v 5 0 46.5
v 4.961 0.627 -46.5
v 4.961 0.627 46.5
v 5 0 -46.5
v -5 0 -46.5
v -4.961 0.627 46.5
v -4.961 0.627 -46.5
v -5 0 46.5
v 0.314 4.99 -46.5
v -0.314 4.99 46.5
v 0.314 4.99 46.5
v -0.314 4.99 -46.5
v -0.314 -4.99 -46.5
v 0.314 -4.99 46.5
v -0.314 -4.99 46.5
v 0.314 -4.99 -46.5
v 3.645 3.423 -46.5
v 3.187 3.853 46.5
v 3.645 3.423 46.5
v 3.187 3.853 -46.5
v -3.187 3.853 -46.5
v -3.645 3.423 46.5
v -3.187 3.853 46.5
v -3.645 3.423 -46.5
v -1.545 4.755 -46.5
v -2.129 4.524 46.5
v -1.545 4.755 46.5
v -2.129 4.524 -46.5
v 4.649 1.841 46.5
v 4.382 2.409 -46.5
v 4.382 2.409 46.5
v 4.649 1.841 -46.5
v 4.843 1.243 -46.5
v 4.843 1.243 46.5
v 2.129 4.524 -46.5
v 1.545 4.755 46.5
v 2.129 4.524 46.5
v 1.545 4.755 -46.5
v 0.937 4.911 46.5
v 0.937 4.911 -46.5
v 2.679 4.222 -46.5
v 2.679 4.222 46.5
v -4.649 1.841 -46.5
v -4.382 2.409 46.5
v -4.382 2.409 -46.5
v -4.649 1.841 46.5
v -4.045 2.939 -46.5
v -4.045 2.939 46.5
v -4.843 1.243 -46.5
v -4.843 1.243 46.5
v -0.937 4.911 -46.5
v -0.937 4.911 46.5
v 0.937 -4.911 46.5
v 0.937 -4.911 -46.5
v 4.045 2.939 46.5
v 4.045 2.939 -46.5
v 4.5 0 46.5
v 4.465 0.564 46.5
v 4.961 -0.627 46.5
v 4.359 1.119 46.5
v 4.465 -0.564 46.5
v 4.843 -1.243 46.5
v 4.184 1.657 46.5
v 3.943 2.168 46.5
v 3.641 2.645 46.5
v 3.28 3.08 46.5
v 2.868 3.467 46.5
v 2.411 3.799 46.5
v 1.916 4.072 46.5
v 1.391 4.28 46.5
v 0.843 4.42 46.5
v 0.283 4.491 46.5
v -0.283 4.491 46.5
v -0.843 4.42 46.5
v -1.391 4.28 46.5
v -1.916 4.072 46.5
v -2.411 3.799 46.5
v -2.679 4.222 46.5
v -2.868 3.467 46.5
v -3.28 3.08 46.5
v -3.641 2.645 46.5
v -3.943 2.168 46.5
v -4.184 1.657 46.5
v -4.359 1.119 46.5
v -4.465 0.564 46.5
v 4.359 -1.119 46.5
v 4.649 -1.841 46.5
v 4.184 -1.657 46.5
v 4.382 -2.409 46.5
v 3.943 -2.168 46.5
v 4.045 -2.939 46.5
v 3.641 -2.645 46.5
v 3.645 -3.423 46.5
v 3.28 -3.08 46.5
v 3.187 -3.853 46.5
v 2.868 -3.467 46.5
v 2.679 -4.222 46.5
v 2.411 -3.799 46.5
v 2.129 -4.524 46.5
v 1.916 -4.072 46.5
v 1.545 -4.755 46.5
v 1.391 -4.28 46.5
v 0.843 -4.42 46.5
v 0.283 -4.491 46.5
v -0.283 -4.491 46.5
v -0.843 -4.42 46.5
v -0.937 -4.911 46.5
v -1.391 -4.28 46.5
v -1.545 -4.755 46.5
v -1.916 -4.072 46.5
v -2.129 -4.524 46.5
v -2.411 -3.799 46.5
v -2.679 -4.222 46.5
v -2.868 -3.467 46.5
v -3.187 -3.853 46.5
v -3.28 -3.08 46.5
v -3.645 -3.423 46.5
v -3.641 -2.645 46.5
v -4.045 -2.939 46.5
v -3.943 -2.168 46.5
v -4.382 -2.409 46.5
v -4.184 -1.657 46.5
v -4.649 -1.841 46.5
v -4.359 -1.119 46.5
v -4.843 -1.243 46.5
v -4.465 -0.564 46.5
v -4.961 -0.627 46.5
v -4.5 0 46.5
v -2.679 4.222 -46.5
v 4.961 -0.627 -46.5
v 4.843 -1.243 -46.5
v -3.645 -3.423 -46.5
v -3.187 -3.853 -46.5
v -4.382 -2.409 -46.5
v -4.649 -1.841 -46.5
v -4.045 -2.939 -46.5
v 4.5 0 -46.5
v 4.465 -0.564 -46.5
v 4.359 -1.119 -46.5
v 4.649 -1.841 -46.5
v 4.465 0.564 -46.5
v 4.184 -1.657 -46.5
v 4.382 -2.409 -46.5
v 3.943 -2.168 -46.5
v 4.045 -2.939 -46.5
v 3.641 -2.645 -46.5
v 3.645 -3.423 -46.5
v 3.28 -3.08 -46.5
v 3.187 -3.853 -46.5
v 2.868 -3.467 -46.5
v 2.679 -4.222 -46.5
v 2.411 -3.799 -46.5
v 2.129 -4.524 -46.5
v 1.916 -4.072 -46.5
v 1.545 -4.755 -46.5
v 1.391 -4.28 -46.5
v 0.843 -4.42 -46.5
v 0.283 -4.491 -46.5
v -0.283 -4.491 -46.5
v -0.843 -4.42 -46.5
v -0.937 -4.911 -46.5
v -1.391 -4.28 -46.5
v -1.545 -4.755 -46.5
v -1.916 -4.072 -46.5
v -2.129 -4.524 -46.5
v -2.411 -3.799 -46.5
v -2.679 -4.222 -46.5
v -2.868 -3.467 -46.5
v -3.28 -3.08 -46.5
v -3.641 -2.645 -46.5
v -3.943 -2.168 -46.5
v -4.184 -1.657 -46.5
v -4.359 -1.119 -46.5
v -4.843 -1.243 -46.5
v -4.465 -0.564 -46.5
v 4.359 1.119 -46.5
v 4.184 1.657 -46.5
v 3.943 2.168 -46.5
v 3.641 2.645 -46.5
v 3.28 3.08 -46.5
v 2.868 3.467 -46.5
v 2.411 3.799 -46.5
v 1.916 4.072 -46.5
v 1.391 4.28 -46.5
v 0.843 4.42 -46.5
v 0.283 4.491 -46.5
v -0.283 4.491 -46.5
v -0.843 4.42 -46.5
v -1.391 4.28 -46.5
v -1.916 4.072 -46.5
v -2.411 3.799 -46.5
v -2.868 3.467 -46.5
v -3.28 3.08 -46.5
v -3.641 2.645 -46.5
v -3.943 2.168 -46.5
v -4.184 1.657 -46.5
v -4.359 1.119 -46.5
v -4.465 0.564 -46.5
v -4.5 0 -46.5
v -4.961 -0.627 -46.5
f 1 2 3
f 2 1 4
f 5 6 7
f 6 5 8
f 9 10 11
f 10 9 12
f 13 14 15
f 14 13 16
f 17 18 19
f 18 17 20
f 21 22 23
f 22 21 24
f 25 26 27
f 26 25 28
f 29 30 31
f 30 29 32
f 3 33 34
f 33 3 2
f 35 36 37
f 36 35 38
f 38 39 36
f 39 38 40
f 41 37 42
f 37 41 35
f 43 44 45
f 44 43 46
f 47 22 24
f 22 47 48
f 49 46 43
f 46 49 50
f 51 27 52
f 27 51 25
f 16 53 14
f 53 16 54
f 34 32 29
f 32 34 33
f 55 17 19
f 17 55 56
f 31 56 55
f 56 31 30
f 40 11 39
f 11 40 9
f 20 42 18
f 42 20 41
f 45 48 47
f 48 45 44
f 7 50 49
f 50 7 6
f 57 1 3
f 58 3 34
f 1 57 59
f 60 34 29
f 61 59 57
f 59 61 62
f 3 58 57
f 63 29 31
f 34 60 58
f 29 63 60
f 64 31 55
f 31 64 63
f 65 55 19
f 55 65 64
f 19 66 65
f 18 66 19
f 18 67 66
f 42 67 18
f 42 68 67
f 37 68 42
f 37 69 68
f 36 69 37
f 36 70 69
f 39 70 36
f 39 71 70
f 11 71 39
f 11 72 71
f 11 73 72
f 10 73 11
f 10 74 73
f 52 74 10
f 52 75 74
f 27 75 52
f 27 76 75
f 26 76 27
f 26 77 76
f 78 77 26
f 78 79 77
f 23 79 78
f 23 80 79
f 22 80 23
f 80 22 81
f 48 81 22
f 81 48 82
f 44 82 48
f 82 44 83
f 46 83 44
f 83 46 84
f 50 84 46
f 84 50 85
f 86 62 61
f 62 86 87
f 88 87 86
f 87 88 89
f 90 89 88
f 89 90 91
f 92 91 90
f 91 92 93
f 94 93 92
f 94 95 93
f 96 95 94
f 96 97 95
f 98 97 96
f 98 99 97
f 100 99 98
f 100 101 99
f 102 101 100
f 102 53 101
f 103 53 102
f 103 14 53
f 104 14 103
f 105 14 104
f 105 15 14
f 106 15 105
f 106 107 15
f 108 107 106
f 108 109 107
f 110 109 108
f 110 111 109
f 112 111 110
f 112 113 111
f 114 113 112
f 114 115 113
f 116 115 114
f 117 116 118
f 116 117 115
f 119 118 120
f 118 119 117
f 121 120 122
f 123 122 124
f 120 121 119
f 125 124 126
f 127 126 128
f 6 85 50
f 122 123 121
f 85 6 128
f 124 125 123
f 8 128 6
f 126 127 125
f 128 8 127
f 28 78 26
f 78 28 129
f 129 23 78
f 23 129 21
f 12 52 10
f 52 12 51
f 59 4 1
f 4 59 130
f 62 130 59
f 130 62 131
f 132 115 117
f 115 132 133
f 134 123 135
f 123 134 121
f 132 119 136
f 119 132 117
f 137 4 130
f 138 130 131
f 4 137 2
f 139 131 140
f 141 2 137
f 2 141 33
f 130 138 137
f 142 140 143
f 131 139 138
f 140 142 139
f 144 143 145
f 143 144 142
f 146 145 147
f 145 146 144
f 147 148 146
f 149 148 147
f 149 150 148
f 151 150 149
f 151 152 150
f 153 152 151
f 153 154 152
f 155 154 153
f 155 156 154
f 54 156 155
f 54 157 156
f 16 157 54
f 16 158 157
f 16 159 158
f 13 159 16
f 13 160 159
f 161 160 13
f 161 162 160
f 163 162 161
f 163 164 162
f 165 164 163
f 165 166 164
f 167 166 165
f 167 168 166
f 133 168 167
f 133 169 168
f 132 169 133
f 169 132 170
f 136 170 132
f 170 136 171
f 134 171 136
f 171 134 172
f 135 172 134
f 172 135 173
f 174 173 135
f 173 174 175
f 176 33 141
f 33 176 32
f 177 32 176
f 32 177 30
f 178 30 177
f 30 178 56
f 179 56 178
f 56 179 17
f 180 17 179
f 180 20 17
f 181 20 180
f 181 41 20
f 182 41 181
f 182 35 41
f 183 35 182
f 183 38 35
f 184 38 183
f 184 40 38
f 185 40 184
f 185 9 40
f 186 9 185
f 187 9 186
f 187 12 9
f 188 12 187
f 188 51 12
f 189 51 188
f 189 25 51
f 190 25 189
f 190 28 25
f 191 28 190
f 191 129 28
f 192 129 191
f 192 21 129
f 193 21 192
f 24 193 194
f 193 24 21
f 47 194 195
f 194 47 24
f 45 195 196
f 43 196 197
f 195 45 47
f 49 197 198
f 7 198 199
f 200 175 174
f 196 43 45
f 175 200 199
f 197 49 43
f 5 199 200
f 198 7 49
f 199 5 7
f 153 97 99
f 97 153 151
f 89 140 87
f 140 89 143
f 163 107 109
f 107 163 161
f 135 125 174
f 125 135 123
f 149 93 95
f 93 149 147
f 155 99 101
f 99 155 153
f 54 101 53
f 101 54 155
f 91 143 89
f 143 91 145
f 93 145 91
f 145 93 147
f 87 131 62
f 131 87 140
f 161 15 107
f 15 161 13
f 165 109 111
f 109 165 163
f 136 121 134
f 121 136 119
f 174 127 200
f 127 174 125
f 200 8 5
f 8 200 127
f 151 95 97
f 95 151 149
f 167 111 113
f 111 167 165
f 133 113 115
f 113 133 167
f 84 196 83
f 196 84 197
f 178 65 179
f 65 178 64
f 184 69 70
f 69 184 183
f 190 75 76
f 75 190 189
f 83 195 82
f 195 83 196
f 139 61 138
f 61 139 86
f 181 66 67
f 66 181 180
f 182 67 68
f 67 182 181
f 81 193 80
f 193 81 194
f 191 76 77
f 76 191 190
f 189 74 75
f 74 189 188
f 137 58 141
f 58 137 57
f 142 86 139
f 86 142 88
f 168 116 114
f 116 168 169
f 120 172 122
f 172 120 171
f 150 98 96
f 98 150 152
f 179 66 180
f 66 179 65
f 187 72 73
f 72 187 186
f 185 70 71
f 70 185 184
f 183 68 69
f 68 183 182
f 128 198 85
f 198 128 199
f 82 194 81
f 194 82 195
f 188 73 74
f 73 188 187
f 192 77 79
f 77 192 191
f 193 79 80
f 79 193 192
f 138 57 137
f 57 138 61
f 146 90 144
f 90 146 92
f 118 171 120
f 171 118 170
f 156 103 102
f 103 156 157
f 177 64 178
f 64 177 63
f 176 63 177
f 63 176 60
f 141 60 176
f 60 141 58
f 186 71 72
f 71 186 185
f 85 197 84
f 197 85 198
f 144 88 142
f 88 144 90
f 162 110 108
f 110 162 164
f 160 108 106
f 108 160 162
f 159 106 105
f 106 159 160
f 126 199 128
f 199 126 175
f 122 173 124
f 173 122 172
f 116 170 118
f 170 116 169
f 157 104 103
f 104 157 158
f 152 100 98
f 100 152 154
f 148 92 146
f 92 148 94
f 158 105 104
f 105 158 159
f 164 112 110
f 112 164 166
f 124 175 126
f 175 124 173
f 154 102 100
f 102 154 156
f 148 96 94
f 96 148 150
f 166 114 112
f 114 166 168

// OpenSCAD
$fn = 50;


difference() {
	union() {
		translate(v = [0, 0, -46.5000000000]) {
			cylinder(h = 93, r = 5.0000000000);
		}
	}
	union() {
		translate(v = [0, 0, -100.0000000000]) {
			cylinder(h = 200, r = 4.5000000000);
		}
	}
}
